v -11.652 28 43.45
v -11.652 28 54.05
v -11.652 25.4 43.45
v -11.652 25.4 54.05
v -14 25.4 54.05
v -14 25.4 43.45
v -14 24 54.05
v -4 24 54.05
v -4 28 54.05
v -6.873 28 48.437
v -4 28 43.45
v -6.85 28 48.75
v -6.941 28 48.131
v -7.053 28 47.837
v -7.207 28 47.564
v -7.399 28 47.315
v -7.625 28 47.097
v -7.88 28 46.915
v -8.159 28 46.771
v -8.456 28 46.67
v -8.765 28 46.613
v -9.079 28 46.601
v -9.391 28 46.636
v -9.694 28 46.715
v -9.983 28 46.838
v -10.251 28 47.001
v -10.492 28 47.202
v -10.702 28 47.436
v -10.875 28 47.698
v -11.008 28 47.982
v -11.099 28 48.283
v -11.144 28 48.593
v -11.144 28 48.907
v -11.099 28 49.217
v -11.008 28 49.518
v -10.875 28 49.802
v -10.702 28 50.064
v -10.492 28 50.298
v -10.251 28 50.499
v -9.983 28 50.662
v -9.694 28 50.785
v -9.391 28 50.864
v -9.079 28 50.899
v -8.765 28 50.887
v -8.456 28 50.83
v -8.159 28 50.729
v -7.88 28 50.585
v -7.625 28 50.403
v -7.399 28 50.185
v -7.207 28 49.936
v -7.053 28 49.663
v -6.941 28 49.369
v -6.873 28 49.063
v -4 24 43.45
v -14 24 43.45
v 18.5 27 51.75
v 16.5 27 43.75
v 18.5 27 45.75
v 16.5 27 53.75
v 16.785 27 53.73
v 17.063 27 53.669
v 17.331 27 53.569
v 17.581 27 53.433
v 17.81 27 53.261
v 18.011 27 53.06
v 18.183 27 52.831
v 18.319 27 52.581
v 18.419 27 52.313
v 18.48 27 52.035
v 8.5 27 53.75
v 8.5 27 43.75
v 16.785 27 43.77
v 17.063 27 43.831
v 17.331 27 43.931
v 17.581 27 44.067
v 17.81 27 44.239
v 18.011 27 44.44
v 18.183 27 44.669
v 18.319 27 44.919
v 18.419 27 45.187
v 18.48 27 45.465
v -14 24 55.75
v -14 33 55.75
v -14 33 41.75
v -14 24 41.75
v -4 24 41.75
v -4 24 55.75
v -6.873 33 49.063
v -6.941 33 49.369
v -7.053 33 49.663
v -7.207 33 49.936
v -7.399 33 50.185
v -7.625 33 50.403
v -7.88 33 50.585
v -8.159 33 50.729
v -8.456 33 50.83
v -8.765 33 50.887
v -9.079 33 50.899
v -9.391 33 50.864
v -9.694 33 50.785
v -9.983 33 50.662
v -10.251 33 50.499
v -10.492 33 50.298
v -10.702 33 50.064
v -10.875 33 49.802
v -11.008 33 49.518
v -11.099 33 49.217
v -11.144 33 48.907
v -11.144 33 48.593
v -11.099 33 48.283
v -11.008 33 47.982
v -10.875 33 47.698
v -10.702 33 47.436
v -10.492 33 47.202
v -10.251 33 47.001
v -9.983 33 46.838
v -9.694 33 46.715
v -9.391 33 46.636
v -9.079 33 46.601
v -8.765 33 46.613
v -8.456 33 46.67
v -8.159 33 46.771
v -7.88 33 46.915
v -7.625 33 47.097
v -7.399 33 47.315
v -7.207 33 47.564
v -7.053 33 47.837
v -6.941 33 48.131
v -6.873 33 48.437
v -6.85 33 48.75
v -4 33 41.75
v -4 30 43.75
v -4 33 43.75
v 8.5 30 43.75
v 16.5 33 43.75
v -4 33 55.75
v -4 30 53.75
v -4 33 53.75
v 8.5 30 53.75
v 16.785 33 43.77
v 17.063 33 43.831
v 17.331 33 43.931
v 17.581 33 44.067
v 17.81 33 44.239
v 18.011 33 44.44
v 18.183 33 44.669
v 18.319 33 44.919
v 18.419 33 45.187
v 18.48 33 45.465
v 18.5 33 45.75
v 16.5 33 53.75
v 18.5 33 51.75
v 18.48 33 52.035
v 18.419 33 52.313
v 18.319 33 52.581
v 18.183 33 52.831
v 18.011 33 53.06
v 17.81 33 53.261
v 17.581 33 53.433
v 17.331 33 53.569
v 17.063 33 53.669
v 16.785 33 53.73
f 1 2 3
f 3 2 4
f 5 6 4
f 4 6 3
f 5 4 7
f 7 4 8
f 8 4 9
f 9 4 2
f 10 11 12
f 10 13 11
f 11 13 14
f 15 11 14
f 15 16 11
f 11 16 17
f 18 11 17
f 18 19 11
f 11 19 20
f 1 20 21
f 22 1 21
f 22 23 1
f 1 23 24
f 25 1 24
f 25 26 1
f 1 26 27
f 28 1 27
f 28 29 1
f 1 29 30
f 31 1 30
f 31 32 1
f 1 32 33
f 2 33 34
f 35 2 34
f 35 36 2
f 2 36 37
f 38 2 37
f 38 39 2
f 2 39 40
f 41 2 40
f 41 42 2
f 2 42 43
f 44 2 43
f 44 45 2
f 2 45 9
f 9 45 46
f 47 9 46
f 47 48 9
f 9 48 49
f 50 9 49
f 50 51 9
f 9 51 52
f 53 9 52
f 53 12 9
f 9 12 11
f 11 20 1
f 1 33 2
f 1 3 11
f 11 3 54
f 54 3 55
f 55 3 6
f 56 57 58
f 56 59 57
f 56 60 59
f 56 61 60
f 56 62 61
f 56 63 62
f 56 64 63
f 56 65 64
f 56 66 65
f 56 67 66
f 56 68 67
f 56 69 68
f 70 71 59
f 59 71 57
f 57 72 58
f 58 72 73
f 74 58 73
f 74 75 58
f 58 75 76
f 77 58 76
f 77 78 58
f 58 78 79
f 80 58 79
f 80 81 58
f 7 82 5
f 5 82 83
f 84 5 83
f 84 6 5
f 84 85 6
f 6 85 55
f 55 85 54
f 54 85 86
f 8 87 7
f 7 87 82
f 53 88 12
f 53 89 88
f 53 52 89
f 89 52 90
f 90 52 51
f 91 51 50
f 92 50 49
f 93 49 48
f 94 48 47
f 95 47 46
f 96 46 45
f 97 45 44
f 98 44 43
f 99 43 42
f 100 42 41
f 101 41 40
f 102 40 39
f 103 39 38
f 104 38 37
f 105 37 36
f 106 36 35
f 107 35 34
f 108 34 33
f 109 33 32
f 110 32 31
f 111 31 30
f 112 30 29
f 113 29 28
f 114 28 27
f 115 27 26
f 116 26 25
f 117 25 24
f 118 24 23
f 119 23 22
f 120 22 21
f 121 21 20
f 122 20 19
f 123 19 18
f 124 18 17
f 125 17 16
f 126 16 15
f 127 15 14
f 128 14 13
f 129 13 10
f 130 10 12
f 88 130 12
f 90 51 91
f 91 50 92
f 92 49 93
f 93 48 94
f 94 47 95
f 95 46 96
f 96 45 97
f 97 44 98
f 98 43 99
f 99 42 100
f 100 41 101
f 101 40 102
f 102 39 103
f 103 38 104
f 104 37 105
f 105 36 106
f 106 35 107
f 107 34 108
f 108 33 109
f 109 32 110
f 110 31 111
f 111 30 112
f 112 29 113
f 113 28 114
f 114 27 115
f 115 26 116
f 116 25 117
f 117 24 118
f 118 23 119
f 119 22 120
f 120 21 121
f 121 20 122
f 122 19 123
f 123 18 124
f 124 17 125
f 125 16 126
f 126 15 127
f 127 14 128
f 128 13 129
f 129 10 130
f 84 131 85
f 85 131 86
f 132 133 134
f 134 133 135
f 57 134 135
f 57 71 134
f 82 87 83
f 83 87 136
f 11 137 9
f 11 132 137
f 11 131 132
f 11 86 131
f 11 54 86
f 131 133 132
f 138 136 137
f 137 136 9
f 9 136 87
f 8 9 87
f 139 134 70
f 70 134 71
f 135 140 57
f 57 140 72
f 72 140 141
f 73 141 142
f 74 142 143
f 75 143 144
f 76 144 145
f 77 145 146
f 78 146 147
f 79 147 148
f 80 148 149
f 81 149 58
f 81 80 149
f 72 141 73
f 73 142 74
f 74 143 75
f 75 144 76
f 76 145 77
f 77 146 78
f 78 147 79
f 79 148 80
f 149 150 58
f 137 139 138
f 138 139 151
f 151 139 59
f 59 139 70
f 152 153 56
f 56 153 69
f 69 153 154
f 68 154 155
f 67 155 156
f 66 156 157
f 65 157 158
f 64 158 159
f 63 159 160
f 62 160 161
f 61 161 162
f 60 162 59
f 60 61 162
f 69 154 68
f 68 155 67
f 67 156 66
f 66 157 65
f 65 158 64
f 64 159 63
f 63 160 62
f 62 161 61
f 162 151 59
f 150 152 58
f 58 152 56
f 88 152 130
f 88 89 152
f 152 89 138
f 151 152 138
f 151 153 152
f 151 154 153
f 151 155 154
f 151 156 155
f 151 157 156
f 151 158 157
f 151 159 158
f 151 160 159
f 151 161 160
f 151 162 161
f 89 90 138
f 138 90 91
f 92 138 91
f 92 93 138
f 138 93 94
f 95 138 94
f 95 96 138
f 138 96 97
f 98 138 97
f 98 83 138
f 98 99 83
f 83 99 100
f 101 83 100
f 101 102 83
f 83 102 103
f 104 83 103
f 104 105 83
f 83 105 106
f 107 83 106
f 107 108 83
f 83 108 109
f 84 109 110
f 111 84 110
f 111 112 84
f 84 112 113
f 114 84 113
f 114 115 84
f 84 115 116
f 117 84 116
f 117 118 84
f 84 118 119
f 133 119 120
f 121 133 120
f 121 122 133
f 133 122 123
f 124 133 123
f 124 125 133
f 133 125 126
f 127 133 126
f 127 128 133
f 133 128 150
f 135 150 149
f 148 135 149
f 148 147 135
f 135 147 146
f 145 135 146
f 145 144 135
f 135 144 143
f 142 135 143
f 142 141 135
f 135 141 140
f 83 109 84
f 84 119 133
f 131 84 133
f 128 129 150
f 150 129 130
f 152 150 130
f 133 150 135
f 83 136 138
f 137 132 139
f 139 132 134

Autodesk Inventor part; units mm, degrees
ref_plane "YZ Plane" through (0, 0, 0) normal (1, 0, 0) x (0, 1, 0)
ref_plane "XZ Plane" through (0, 0, 0) normal (0, 1, 0) x (-1, 0, 0)
ref_plane "Work Plane1" through (-6, 33, 48.75) normal (0, 1, 0) x (0, 0, 1)
sketch "Sketch1" plane through (-6, 33, 48.75) normal (0, 1, 0) x (0, 0, 1)
  arc A0 (5, 22.5) -> (3, 24.5) centre (3, 22.5) ccw projected
  line L0 (3, 24.5) -> (-3, 24.5) projected
  arc A1 (-3, 24.5) -> (-5, 22.5) centre (-3, 22.5) ccw projected
  line L1 (-5, 22.5) -> (-5, 14.5) projected
  line L2 (5, 14.5) -> (5, 22.5) projected
  line L3 (5, 4.5) -> (5, 14.5) projected
  line L4 (-5, 4.5) -> (-5, 14.5) projected
  line L5 (-5, 14.5) -> (5, 14.5) projected
  line L6 (5, -8) -> (-5, -8) projected
  line L7 (-5, 2) -> (-5, -8) projected
  line L8 (5, 2) -> (5, -8) projected
  line L9 (-5, 4.6724) -> (-5, 1.6802)
  line L10 (5, 1.6802) -> (5, 5.5636)
  point P0 (-48.75, 6)
extrude "Extrusion1" add sketch "Sketch1" against normal blind 3
sketch "Sketch2" plane through (-6, 30, 48.75) normal (0, -1, 0) x (1, 0, 0)
  line L0 (24.5, -3) -> (24.5, 3) projected
  arc A0 (24.5, 3) -> (22.5, 5) centre (22.5, 3) ccw projected
  line L1 (22.5, 5) -> (-8, 5) projected
  line L2 (-8, -5) -> (22.5, -5) projected
  arc A1 (22.5, -5) -> (24.5, -3) centre (22.5, -3) ccw projected
  line L3 (14.5, -5) -> (14.5, 5) projected
  point P0 (6, -48.75)
extrude "Extrusion2" add sketch "Sketch2" along normal blind 1.5
sketch "Sketch3" plane through (-6, 30, 48.75) normal (0, -1, 0) x (1, 0, 0)
  line L0 (-8, 5) -> (-8, -5) projected
  circle A0 centre (-3, 0) radius 2.15 projected
  line L1 (2, 5) -> (-8, 5) projected
  line L2 (2, 5) -> (2, -5) projected
  line L3 (2, -5) -> (-8, -5) projected
  line L4 (-8, 5) -> (-8, -5) projected
  point P0 (6, -48.75)
extrude "Extrusion3" add sketch "Sketch3" along normal blind 2
sketch "Sketch4" plane through (-14, 33, 53.75) normal (0, 0, 1) x (1, 0, 0)
  line L0 (0, 0) -> (10, 0)
  line L1 (10, 0) -> (10, -5)
  line L2 (10, -5) -> (0, -5)
  line L3 (0, -5) -> (0, 0)
  point P0 (14, -33)
extrude "Extrusion4" add sketch "Sketch4" along normal blind 2
sketch "Sketch5" plane through (16.5, 33, 43.75) normal (0, 0, -1) x (-1, 0, 0)
  line L0 (30.5, -5) -> (20.5, -5) projected
  line L1 (30.5, 0) -> (30.5, -5) projected
  line L2 (30.5, 0) -> (20.5, 0)
  line L3 (20.5, 0) -> (20.5, -5)
  line L4 (20.5, -5) -> (30.5, -5)
  line L5 (30.5, -5) -> (30.5, 0)
  point P0 (16.5, -33)
extrude "Extrusion5" add sketch "Sketch5" along normal blind 2
sketch "Sketch6" plane through (-6, 33, 48.75) normal (0, 1, 0) x (1, 0, 0)
  circle A0 centre (-3, 0) radius 2.15 projected
  point P0 (6, 48.75)
extrude "Extrusion6" cut sketch "Sketch6" against normal up to next
sketch "Sketch7" plane through (-6, 28, 48.75) normal (0, -1, 0) x (1, 0, 0)
  line L0 (-8, -7) -> (-8, 7) projected
  line L1 (2, -7) -> (-8, -7) projected
  line L2 (2, 7) -> (2, -7) projected
  line L3 (-8, 7) -> (2, 7) projected
  line L4 (2, -5) -> (-8, -5) projected
  line L5 (2, 5) -> (-8, 5) projected
  point P0 (6, -48.75)
extrude "Extrusion7" add sketch "Sketch7" along normal blind 4 contours L0 L4 L2 L1 | L0 L3 L2 L5
sketch "Sketch8" plane through (-14, 28, 43.75) normal (0, 0, 1) x (1, 0, 0)
  line L0 (0, 0) -> (10, 0) projected
  line L1 (0, 0) -> (0, -4) projected
  line L2 (10, -4) -> (0, -4) projected
  line L3 (10, 0) -> (10, -4) projected
  point P0 (14, -28)
extrude "Extrusion8" cut sketch "Sketch8" against normal blind 0.3
sketch "Sketch9" plane through (-4, 28, 53.75) normal (0, 0, -1) x (-1, 0, 0)
  line L0 (0, 0) -> (10, 0) projected
  line L1 (0, 0) -> (0, -4) projected
  line L2 (10, -4) -> (0, -4) projected
  line L3 (10, 0) -> (10, -4) projected
  point P0 (-4, -28)
extrude "Extrusion9" cut sketch "Sketch9" against normal blind 0.3
sketch "Sketch10" plane through (-6, 28.5, 48.75) normal (0, -1, 0) x (1, 0, 0)
  line L0 (24.5, -3) -> (24.5, 3) projected
  arc A0 (24.5, 3) -> (22.5, 5) centre (22.5, 3) ccw projected
  line L1 (22.5, 5) -> (14.5, 5) projected
  line L2 (14.5, 5) -> (14.5, -5) projected
  line L3 (14.5, -5) -> (22.5, -5) projected
  arc A1 (22.5, -5) -> (24.5, -3) centre (22.5, -3) ccw projected
  point P0 (6, -48.75)
extrude "Extrusion10" add sketch "Sketch10" along normal blind 1.5
sketch "Sketch11" plane through (-6, 28, 48.75) normal (0, -1, 0) x (1, 0, 0)
  line L0 (-8, -5.3) -> (-8, 5.3) projected
  line L1 (-8, -5.3) -> (2, -5.3) projected
  line L2 (-8, 5.3) -> (-5.652, 5.3)
  line L3 (-5.652, 5.3) -> (-5.652, -5.3)
  line L4 (-5.652, -5.3) -> (-8, -5.3)
  line L5 (-8, -5.3) -> (-8, 5.3)
  point P0 (6, -48.75)
extrude "Extrusion11" add sketch "Sketch11" along normal blind 2.6
properties part number "CradleTop"
